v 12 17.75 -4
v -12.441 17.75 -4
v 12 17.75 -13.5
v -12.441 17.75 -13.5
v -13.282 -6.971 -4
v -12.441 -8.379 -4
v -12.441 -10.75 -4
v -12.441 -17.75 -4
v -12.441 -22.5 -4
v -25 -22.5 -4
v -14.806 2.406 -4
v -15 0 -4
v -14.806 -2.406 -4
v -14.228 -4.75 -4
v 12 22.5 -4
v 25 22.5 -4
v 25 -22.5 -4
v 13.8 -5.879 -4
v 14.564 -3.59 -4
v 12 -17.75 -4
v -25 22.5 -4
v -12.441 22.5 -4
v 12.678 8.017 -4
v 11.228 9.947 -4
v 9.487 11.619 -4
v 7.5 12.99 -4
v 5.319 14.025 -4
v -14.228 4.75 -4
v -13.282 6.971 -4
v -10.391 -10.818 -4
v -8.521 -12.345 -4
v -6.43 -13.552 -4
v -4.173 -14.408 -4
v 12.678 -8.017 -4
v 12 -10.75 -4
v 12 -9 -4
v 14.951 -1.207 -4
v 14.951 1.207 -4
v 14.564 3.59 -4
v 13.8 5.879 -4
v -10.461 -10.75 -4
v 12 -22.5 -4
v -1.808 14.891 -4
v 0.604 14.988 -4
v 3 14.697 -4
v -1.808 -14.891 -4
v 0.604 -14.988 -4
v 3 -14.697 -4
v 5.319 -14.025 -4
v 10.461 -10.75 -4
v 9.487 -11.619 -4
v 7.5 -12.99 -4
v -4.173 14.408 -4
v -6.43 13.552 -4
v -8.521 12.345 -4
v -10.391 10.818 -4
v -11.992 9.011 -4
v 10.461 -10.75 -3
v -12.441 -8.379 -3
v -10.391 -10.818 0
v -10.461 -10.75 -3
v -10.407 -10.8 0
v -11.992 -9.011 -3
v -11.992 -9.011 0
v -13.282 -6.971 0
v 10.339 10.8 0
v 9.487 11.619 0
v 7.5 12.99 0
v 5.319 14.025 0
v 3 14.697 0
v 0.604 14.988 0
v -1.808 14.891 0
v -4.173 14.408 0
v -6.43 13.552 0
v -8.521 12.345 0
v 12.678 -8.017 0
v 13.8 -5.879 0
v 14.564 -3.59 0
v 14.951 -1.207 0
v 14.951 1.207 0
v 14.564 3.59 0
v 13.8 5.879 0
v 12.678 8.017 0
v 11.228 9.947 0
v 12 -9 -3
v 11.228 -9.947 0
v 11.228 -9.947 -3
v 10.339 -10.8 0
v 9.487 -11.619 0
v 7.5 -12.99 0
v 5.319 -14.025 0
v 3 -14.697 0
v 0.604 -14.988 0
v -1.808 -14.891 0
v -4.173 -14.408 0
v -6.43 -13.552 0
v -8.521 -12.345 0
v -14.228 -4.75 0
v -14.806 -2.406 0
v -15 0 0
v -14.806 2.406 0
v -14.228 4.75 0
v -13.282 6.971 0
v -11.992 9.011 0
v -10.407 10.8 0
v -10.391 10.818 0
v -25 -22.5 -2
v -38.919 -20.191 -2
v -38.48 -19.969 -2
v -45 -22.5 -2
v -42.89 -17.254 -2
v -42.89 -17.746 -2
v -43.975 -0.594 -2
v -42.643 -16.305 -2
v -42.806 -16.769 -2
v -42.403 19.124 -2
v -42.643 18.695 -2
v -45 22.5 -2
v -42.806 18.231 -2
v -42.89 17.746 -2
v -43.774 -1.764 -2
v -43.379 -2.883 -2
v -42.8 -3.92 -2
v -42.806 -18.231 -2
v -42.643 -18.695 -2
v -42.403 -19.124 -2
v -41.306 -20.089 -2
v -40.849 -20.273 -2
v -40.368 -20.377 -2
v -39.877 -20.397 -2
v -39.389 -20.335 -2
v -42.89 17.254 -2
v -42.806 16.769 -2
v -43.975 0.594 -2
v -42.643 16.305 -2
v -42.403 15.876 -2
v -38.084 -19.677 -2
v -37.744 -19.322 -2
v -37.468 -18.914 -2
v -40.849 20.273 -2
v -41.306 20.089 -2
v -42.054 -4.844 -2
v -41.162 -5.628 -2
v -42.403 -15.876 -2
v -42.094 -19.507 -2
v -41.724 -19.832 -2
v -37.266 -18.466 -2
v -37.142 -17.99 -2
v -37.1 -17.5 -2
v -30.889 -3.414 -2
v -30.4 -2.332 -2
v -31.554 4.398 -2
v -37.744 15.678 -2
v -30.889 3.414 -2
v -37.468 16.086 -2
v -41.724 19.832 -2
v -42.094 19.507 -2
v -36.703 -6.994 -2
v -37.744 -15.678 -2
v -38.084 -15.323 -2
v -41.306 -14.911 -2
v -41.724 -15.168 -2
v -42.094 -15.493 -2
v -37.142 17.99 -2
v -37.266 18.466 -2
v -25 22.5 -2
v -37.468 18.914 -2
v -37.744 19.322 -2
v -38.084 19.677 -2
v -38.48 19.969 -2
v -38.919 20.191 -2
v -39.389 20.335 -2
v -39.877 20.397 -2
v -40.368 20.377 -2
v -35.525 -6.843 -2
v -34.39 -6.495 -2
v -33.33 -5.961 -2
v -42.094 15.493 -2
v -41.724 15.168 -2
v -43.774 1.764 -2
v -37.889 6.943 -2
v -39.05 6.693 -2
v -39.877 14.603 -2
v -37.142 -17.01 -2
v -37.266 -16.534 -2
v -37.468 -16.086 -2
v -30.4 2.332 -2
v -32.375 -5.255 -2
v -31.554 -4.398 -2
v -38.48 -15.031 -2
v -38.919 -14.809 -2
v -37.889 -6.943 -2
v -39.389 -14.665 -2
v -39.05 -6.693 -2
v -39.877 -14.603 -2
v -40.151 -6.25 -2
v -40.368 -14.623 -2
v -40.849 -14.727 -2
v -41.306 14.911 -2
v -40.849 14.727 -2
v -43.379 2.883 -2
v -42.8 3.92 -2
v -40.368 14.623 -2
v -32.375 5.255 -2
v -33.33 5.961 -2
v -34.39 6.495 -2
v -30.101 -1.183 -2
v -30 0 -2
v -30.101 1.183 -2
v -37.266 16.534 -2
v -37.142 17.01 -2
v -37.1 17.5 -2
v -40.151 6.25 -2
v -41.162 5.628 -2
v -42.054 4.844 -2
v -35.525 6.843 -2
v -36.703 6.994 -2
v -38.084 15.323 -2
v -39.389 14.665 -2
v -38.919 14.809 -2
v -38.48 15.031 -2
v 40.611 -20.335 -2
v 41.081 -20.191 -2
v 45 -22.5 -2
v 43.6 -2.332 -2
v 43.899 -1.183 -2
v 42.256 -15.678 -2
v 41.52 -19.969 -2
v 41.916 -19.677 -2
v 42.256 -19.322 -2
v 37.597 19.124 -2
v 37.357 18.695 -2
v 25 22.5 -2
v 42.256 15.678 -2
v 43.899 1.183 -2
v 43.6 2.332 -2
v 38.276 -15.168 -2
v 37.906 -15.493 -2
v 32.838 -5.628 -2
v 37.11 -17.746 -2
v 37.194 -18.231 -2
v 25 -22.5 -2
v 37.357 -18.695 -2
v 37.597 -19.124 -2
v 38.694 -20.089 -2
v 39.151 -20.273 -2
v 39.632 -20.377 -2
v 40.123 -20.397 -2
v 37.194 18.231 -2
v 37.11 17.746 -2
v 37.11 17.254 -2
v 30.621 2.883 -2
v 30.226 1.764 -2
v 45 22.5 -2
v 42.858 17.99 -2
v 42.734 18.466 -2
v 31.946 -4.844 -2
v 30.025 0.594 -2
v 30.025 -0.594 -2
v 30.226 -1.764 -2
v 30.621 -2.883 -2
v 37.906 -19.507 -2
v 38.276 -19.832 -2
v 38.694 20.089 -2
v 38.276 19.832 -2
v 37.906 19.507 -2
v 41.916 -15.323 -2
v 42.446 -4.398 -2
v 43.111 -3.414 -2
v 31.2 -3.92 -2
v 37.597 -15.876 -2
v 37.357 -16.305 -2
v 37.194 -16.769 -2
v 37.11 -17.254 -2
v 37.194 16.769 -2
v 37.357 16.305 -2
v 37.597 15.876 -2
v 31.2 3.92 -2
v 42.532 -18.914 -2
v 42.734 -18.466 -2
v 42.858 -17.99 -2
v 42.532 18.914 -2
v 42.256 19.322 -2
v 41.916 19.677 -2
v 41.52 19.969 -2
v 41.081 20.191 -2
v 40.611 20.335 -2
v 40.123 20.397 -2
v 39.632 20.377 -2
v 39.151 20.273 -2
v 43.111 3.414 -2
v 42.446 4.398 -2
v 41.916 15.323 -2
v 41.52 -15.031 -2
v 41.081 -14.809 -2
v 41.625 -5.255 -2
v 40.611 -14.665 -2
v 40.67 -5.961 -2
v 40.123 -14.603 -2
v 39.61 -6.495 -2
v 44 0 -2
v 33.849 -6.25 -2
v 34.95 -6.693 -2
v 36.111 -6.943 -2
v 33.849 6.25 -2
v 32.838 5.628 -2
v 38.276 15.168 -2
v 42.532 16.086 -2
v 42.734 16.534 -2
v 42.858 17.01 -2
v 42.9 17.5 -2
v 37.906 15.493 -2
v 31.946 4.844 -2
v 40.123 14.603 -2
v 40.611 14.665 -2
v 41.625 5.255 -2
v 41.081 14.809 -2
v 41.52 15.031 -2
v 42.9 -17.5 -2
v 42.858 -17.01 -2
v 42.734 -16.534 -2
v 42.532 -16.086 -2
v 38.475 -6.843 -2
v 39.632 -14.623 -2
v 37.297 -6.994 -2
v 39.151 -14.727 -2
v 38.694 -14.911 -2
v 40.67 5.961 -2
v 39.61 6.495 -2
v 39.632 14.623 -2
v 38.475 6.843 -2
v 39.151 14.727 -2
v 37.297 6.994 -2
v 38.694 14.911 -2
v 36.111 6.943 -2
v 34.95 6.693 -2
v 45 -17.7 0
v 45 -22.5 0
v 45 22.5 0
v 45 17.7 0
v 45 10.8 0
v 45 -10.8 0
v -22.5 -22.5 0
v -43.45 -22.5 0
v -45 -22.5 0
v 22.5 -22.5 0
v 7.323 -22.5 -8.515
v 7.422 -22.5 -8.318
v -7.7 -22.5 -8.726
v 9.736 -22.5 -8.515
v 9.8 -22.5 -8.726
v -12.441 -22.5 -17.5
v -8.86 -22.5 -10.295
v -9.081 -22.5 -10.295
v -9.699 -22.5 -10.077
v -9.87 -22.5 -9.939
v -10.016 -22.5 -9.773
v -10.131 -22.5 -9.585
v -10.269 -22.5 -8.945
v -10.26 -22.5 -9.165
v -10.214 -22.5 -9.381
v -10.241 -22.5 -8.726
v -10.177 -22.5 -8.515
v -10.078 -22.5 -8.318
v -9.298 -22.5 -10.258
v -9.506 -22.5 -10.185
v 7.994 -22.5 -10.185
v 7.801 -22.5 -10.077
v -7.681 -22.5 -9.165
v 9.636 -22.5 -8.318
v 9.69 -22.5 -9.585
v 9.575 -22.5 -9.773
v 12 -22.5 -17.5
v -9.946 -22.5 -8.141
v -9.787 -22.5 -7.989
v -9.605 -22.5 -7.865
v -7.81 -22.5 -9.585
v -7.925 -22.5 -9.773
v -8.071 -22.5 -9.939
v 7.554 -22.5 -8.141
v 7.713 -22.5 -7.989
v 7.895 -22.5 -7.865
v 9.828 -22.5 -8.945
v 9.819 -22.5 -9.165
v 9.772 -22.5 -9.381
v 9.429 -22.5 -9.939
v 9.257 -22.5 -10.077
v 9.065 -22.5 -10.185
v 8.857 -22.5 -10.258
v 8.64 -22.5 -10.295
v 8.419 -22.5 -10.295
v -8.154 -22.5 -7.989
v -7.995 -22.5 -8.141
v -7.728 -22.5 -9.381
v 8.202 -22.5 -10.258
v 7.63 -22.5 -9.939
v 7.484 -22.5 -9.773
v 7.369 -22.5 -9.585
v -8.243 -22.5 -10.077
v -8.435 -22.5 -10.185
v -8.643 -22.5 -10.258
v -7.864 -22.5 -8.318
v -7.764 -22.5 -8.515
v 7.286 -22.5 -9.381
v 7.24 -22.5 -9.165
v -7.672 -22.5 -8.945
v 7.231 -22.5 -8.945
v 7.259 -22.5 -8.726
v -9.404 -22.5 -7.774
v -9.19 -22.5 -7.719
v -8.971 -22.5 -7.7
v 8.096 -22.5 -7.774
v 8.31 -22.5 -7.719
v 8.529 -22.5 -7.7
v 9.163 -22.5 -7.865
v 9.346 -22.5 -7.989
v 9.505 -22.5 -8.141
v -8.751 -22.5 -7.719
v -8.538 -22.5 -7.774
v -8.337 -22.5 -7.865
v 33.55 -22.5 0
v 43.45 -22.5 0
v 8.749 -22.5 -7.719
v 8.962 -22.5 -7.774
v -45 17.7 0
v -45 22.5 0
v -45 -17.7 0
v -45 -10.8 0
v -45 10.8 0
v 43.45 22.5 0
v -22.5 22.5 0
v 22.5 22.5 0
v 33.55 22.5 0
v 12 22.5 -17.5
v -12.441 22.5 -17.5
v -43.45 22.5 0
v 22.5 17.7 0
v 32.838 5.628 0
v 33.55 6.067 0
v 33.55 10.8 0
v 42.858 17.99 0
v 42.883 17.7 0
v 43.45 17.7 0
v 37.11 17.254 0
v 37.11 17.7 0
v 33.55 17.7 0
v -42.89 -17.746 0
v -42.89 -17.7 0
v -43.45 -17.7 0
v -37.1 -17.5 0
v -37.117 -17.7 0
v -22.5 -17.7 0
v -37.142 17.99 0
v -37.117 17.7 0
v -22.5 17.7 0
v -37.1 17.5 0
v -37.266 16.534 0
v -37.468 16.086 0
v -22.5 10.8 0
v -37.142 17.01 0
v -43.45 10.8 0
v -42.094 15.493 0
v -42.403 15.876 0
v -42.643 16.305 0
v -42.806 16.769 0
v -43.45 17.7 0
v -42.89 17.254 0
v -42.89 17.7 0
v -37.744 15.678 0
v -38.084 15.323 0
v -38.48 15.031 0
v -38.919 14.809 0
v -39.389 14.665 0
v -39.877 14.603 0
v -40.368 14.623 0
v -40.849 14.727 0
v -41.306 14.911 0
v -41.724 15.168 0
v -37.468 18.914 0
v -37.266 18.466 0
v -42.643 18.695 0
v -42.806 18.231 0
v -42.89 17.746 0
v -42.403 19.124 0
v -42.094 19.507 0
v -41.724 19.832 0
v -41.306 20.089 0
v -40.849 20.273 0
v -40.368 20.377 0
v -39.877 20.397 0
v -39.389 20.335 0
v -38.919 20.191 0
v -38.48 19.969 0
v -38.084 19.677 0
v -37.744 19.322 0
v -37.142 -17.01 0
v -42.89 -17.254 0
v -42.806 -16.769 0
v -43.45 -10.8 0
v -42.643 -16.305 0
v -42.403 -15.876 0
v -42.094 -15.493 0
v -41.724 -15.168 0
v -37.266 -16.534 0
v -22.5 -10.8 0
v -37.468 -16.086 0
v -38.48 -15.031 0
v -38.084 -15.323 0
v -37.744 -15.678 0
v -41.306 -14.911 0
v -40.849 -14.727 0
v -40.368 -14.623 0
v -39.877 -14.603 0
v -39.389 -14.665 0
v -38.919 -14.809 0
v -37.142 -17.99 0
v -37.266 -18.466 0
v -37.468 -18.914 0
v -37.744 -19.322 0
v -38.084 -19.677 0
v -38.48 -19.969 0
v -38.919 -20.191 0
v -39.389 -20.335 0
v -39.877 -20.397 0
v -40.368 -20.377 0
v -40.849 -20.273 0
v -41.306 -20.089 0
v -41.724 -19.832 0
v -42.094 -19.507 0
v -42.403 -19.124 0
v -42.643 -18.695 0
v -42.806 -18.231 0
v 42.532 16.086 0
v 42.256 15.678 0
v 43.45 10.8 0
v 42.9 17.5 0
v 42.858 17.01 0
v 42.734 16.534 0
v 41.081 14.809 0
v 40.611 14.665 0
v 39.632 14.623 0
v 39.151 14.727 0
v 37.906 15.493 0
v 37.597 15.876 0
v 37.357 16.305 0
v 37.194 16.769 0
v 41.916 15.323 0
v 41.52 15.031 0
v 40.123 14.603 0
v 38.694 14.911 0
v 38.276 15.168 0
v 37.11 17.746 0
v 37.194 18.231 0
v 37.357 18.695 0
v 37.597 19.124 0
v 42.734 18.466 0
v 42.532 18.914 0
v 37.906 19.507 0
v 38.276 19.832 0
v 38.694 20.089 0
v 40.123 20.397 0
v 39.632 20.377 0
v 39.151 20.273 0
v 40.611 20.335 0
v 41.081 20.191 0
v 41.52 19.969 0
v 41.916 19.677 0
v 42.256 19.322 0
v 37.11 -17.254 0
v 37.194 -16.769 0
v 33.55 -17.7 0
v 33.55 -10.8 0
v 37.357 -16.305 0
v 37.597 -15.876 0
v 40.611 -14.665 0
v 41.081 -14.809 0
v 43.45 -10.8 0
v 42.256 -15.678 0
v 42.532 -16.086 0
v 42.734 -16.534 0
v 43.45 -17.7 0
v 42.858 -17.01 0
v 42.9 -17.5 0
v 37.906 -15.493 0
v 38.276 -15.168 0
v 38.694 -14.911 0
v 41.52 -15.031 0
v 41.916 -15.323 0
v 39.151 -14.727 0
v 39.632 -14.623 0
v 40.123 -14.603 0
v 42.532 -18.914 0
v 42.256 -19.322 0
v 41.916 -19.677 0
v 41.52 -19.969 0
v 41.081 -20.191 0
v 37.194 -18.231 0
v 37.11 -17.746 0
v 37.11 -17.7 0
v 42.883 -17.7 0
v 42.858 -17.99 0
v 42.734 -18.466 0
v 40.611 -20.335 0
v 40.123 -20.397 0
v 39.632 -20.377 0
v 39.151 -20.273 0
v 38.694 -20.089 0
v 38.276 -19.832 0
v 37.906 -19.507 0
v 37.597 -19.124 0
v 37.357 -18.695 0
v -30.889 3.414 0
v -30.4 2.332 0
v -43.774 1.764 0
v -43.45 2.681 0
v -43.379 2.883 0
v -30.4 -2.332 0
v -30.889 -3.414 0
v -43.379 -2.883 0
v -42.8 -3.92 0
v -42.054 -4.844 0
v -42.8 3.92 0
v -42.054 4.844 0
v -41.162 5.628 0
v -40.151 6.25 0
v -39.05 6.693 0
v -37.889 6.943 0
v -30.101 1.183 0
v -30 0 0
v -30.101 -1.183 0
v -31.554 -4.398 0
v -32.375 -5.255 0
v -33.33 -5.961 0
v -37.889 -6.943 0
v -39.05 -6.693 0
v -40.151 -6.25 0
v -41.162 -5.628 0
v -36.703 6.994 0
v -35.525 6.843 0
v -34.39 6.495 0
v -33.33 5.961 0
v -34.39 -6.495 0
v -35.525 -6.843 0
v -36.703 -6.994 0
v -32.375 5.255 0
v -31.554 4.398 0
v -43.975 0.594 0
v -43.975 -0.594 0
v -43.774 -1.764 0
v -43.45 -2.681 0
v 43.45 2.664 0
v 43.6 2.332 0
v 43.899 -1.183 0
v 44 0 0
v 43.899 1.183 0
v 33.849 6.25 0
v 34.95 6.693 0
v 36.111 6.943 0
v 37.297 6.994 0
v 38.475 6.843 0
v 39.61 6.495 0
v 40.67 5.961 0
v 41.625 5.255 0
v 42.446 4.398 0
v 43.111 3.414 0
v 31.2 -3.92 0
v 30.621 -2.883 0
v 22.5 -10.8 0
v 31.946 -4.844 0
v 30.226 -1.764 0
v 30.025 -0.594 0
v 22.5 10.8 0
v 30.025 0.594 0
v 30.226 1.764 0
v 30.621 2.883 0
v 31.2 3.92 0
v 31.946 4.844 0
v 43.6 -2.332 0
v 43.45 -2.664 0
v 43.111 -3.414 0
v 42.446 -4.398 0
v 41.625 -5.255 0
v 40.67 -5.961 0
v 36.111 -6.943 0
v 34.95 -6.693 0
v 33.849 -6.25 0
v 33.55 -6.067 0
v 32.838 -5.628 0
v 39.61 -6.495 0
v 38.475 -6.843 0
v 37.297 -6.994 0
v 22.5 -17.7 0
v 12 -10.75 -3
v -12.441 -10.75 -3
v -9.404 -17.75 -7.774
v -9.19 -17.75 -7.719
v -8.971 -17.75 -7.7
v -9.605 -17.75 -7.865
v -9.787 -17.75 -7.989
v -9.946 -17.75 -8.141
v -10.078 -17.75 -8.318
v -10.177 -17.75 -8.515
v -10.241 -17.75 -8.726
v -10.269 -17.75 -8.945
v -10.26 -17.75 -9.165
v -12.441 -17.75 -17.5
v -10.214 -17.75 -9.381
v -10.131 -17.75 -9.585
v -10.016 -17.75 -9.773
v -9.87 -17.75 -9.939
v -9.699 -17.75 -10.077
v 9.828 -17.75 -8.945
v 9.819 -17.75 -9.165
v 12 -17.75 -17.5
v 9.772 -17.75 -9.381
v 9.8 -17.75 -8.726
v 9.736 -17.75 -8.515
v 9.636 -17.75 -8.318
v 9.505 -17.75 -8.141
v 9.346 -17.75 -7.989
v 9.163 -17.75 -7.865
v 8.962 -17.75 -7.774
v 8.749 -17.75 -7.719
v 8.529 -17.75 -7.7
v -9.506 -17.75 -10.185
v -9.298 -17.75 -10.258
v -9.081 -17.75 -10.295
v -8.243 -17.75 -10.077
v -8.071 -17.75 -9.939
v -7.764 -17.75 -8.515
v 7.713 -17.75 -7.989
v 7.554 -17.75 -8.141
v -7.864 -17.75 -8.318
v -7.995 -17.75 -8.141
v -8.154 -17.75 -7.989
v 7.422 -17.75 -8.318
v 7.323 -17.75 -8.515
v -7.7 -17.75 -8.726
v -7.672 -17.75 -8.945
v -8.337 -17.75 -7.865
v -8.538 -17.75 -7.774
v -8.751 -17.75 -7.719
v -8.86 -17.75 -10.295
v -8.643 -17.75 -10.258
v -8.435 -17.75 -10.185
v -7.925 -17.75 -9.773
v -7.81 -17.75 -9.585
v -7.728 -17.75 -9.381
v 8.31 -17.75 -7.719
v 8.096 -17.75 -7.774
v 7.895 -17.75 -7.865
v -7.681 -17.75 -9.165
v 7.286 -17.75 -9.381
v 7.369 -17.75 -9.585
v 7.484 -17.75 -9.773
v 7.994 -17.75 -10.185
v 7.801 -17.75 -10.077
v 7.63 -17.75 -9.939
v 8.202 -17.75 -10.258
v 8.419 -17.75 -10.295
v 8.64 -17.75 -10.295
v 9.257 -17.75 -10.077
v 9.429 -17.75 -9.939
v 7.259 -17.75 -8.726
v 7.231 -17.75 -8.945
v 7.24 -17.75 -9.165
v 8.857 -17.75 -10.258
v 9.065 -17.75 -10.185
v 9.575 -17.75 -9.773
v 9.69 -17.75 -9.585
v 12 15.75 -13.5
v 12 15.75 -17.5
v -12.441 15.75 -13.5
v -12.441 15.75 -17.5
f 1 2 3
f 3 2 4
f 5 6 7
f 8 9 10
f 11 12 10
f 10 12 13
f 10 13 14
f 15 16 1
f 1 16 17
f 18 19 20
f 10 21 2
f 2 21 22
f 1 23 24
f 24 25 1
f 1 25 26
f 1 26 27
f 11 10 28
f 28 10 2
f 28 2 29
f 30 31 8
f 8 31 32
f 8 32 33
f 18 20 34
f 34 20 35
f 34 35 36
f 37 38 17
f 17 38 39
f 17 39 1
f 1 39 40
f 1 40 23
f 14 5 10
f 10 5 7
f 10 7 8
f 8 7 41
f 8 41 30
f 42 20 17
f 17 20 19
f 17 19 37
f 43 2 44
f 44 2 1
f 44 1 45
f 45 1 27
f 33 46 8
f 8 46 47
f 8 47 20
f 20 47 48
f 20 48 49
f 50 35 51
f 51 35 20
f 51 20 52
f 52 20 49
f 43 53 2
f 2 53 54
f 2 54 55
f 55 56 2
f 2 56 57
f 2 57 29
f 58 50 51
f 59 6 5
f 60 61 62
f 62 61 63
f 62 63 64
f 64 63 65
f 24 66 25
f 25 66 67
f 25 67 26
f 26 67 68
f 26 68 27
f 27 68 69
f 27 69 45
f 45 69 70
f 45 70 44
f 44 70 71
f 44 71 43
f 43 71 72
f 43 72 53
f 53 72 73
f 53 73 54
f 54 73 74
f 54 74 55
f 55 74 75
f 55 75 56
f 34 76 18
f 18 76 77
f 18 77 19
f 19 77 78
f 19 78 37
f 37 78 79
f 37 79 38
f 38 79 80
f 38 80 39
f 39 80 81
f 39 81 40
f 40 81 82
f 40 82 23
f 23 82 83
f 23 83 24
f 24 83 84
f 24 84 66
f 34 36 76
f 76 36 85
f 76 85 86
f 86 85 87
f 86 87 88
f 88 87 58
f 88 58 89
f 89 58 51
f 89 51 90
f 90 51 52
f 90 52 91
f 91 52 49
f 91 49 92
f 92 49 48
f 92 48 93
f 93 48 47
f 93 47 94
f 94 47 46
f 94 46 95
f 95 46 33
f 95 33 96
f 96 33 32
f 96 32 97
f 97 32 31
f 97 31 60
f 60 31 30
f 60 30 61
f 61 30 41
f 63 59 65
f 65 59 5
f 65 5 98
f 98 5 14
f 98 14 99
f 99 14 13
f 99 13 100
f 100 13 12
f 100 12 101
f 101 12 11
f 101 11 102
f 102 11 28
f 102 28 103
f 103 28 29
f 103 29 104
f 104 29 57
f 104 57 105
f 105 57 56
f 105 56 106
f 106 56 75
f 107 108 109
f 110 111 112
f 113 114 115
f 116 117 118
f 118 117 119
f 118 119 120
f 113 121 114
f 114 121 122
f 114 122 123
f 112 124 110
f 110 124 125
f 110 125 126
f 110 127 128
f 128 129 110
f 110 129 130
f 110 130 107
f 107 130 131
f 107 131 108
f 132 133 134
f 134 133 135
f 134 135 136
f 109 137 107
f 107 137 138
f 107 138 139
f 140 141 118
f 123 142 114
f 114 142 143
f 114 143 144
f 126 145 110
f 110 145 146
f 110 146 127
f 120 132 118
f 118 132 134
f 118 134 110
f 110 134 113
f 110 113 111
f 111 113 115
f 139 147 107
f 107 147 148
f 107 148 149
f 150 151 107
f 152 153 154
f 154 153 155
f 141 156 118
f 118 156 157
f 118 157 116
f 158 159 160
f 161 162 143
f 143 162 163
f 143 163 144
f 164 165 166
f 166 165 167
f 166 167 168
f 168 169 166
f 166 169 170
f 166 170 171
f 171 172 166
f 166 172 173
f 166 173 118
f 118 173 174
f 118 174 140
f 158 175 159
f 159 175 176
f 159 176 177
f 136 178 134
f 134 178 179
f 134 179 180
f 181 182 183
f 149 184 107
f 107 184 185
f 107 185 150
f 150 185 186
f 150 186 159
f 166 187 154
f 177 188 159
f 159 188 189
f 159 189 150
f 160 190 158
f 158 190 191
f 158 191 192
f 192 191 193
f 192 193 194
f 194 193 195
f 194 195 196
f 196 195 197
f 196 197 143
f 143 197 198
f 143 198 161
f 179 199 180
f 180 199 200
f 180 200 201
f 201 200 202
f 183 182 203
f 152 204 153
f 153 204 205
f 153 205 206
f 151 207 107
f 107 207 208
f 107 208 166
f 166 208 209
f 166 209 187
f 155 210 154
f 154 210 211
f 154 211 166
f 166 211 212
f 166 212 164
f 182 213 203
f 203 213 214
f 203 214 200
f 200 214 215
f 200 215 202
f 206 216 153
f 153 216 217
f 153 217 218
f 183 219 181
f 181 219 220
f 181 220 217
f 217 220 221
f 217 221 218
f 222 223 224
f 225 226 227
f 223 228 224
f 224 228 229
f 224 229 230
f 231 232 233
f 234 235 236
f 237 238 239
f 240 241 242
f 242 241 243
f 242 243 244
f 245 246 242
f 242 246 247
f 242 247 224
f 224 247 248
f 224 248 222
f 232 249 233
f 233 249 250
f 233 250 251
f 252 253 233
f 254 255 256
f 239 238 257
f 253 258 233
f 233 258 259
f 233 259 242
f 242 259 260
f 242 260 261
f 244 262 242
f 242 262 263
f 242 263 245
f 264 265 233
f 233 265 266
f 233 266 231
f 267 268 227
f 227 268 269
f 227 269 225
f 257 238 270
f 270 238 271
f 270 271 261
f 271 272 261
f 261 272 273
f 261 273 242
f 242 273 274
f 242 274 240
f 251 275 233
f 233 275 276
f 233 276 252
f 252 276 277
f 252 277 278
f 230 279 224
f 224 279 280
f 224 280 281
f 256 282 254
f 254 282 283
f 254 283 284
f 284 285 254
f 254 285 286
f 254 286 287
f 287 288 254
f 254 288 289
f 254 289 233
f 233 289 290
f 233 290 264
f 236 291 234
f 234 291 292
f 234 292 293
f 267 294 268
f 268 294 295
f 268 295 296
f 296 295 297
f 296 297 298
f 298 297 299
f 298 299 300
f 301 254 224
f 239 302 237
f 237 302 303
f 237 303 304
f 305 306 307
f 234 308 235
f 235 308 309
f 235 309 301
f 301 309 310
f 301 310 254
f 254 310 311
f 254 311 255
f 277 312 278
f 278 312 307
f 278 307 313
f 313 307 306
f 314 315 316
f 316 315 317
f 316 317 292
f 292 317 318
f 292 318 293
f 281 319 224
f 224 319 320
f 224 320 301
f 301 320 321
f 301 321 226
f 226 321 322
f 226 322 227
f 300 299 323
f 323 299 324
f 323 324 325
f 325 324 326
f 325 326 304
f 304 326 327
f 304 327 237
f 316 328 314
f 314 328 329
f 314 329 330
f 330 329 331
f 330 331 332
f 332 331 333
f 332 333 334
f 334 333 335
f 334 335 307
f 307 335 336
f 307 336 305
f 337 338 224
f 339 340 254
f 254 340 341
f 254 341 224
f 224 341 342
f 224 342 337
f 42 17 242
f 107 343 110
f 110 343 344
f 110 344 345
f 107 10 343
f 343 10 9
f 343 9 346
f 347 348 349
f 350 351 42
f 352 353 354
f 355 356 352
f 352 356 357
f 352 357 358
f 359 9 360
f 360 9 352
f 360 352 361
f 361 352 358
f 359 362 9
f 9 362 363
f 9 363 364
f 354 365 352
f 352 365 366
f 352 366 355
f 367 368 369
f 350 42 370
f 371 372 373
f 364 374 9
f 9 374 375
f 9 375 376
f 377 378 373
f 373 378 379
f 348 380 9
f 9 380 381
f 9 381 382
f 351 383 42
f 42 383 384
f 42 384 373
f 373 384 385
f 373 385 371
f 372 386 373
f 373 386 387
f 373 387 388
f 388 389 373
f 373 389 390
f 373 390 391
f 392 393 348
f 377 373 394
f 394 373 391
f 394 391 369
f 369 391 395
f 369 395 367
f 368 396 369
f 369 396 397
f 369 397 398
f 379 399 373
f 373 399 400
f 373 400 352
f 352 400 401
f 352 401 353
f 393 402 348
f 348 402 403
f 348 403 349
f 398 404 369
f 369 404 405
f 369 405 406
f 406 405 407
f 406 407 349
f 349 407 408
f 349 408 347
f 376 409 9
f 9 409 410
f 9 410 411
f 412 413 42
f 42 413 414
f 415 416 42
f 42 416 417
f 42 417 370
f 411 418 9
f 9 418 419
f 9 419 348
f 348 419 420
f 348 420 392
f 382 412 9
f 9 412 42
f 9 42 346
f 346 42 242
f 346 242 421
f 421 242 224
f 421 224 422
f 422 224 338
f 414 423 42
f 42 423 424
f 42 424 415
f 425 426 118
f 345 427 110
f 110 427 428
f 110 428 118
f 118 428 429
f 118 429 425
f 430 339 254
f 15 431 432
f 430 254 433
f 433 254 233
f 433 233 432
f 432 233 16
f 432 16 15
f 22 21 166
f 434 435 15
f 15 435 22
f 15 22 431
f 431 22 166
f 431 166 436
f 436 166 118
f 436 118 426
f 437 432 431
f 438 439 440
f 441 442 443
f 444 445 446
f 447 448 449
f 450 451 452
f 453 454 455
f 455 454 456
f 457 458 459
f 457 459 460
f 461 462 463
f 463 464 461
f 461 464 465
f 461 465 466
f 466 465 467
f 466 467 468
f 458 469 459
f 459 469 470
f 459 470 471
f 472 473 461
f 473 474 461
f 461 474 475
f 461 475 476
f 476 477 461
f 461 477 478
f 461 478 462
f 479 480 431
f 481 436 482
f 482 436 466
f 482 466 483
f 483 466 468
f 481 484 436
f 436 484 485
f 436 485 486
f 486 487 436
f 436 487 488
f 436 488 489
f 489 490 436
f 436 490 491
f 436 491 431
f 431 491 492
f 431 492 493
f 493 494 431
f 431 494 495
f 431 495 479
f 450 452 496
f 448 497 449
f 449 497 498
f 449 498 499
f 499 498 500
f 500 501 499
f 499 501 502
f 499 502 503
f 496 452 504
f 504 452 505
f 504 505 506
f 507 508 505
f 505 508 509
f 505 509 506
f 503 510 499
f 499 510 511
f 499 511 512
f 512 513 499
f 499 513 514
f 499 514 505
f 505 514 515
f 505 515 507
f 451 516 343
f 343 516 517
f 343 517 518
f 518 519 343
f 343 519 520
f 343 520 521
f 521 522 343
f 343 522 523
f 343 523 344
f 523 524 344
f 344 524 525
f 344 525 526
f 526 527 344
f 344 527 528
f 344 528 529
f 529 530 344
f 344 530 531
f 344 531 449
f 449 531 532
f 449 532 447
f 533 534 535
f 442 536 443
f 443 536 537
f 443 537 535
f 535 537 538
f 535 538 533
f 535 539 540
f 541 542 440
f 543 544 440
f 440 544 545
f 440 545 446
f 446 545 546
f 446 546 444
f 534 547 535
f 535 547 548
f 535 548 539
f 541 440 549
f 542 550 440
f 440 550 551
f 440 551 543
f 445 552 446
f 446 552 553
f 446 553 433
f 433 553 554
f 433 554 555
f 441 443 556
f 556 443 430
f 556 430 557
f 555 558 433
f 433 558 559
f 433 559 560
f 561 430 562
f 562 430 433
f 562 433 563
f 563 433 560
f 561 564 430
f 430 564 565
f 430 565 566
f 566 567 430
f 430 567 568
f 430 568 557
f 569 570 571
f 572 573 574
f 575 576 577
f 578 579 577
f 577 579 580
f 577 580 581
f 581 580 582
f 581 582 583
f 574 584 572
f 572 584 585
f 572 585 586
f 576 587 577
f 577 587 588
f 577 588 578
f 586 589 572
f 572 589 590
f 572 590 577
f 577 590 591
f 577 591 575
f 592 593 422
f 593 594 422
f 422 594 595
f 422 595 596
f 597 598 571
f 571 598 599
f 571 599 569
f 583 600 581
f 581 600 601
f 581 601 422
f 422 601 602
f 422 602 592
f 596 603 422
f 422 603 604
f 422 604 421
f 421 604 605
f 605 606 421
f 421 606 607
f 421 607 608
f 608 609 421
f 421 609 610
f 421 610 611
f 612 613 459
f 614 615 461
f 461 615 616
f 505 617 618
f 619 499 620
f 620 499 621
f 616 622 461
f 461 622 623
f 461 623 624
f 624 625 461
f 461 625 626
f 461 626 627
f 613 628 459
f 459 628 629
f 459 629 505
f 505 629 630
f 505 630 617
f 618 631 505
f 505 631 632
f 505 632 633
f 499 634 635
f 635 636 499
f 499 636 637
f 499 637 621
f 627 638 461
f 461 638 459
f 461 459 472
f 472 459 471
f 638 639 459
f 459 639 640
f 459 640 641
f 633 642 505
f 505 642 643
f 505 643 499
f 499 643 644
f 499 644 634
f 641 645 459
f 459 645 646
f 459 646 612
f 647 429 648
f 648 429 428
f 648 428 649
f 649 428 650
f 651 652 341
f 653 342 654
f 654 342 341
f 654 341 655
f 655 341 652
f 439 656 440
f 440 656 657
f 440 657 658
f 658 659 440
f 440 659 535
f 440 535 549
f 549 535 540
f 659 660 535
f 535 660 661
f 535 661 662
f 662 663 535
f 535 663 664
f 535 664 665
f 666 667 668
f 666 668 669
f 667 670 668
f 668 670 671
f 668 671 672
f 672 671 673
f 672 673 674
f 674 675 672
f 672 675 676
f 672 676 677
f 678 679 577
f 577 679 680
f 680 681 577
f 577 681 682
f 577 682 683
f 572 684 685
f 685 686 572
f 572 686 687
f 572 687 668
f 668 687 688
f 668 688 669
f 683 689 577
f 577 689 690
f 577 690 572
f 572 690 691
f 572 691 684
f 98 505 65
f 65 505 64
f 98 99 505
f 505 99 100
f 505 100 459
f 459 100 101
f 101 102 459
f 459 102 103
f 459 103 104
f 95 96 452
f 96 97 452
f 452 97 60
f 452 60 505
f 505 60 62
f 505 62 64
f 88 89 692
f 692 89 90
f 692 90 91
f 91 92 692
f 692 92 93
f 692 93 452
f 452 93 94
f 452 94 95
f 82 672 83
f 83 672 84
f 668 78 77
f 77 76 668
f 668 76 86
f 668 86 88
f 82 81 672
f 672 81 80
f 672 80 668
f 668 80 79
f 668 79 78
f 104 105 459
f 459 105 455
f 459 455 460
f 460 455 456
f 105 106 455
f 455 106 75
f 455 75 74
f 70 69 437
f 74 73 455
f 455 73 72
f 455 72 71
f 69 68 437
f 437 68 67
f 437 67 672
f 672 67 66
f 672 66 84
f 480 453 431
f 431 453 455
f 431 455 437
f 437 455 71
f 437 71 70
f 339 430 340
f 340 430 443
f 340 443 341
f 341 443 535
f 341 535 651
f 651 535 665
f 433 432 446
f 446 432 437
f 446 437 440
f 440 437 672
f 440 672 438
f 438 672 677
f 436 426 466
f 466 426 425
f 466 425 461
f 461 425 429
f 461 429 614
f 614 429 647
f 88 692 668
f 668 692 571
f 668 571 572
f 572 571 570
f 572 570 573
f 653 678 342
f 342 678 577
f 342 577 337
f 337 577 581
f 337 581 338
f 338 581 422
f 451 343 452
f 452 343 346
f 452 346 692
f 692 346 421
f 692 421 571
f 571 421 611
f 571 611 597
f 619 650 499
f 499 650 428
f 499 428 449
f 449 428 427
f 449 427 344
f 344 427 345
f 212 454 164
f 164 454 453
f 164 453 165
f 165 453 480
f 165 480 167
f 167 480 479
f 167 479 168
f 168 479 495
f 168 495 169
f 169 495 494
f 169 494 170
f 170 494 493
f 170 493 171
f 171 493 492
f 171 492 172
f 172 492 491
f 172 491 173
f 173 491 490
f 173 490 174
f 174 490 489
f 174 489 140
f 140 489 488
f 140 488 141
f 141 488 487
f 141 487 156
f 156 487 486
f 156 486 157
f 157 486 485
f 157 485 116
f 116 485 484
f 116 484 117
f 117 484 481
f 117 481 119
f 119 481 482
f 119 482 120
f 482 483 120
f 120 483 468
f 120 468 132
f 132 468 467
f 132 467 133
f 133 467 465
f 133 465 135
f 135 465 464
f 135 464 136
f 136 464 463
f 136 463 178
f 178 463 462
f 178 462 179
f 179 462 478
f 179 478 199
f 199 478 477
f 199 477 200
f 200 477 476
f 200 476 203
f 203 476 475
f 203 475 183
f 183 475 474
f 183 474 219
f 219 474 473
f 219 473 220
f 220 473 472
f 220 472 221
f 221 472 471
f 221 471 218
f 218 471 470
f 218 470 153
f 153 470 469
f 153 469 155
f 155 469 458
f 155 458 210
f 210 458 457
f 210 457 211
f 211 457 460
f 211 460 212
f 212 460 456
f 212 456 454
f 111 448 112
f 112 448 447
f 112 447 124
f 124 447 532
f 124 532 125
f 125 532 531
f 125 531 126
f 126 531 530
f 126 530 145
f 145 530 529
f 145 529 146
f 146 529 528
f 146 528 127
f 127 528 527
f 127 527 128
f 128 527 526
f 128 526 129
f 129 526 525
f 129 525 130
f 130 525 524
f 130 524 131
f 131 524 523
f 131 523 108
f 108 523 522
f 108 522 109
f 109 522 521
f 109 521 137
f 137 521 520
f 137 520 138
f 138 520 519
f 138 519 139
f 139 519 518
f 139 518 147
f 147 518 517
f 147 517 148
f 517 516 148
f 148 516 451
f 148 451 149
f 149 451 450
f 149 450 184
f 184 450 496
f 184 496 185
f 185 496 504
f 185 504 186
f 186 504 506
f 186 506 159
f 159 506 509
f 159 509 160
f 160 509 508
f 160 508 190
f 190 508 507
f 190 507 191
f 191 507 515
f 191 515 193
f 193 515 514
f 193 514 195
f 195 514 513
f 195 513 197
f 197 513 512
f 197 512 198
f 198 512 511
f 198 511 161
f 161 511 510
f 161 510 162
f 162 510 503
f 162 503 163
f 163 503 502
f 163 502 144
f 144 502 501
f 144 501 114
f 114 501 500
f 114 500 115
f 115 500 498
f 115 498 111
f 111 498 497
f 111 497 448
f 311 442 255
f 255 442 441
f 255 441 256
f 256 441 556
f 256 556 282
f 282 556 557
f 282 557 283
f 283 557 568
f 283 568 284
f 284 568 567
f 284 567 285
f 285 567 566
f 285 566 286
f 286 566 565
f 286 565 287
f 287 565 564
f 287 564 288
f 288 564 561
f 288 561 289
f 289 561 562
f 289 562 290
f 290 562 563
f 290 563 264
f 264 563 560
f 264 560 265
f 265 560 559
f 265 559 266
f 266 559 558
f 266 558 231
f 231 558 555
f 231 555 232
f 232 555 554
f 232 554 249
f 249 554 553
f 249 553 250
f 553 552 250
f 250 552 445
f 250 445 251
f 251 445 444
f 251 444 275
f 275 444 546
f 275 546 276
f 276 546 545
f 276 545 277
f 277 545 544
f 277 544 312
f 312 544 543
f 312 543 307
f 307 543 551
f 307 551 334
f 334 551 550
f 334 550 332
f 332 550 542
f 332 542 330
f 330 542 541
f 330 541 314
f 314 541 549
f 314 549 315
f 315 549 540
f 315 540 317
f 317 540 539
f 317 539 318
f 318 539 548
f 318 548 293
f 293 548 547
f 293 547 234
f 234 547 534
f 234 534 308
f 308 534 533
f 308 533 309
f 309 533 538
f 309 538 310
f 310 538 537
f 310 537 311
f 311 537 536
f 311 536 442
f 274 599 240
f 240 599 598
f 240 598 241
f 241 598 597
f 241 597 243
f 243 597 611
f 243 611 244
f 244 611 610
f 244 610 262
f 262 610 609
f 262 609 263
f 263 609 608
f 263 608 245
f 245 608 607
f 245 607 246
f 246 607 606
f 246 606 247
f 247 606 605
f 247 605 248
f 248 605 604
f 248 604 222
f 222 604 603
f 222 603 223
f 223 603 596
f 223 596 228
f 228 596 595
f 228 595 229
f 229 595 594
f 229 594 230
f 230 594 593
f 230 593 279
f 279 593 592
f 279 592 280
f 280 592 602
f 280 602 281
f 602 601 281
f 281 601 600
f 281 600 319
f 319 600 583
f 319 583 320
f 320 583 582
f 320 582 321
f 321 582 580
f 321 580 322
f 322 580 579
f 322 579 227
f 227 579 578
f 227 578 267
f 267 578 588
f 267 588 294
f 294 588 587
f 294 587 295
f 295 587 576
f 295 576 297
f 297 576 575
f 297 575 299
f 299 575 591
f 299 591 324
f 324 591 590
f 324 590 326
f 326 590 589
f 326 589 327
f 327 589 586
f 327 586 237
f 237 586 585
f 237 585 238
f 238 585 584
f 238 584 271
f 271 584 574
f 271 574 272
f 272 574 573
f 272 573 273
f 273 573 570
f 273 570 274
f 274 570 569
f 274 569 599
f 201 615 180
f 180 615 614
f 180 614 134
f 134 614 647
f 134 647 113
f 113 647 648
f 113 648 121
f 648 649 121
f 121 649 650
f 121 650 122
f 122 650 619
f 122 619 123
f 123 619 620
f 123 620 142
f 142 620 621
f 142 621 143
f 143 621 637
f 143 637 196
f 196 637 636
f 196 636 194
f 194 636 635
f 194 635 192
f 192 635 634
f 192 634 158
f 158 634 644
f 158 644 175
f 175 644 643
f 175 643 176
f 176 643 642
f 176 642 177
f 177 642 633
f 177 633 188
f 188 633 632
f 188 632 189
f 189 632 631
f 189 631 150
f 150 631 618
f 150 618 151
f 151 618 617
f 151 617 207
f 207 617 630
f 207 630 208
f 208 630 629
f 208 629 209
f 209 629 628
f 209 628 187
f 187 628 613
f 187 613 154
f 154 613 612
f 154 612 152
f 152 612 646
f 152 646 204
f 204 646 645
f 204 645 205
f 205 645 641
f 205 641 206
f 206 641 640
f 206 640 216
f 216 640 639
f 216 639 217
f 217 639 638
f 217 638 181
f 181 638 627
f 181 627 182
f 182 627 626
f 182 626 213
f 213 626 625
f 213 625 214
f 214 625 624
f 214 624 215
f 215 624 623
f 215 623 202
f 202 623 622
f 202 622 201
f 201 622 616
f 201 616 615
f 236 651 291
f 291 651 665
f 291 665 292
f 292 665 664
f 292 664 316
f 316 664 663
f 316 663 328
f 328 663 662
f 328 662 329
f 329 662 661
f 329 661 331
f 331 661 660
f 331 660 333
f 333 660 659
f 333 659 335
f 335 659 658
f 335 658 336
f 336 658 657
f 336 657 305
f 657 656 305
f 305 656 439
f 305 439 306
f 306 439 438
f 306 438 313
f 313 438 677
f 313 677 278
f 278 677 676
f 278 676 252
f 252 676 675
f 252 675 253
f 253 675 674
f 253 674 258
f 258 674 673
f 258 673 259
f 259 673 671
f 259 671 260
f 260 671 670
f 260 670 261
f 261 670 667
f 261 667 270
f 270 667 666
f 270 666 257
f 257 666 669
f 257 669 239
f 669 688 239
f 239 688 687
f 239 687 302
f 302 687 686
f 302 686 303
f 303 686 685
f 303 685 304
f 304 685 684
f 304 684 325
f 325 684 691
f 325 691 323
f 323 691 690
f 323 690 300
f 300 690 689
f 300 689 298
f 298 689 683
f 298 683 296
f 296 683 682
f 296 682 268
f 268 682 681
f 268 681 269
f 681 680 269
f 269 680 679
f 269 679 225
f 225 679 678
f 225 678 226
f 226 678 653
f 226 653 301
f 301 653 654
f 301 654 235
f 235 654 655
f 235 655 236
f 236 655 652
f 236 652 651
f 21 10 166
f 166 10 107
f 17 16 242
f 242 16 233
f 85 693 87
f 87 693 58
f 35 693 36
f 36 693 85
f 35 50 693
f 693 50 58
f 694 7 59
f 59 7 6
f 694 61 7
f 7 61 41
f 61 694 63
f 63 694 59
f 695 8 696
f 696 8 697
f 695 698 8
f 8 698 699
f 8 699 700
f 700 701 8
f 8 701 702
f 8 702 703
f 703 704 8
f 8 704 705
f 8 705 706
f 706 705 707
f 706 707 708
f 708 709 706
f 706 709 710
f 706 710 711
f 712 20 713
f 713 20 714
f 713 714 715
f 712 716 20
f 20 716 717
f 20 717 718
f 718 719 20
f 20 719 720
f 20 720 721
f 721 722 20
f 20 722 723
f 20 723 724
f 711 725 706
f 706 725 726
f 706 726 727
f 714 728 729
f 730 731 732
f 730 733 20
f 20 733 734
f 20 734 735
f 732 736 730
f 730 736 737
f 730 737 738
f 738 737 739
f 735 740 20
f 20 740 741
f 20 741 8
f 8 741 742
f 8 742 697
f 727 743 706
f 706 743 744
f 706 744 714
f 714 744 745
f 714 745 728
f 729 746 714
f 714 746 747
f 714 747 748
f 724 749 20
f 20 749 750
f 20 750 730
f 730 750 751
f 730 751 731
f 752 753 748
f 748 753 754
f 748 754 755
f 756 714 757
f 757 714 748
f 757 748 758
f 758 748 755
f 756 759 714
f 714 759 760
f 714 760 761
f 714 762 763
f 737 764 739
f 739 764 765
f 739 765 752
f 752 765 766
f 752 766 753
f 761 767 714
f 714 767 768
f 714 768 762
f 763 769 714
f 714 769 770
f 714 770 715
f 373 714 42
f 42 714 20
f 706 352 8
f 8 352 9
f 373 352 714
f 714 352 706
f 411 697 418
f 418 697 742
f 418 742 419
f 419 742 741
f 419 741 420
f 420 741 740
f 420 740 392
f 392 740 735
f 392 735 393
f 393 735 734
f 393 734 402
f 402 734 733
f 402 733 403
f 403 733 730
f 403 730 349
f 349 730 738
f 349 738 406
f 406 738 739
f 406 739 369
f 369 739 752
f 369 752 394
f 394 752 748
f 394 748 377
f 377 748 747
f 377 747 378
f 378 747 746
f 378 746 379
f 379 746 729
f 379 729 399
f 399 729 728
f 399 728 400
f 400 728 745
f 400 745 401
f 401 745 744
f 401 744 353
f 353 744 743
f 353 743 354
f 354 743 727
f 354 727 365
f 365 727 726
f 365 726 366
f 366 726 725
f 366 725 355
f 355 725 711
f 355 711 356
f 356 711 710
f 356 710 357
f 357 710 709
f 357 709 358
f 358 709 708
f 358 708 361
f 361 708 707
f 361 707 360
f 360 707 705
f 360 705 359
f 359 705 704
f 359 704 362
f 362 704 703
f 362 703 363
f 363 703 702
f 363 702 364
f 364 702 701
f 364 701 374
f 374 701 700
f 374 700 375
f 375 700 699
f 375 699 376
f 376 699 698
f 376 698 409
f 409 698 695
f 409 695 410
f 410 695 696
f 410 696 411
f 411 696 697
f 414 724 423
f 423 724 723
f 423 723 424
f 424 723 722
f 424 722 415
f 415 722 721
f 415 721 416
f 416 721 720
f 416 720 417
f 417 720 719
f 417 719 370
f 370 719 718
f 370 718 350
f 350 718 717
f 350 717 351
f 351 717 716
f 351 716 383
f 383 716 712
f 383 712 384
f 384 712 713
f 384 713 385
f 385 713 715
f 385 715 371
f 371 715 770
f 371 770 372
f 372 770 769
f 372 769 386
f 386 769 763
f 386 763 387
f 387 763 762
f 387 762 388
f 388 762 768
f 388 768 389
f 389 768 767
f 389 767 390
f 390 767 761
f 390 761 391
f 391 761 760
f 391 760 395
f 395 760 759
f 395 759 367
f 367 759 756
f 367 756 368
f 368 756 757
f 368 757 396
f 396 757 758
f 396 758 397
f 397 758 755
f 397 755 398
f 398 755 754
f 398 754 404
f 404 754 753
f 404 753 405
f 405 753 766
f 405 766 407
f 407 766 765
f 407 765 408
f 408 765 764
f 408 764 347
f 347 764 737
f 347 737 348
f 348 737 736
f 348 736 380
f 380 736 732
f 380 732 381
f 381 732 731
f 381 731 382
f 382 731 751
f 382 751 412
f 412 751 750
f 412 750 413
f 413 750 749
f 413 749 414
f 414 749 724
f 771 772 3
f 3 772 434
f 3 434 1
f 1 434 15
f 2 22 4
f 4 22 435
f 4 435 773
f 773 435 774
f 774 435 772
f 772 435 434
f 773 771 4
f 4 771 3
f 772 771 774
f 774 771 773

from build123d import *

# Parameters (mm, degrees)
SKETCH_1_W          = 90
SKETCH_1_H          = 45
SKETCH_1_R          = 2.9
SKETCH_1_R_2        = 7
EXTRUDE_2_DEPTH     = 2
EXTRUDE_3_DEPTH     = 2
SKETCH_3_R          = 15
CUT_EXTRUDE_1_DEPTH = 51.470288289
SKETCH_4_W          = 24.441241248
SKETCH_4_H          = 13
CUT_EXTRUDE_2_DEPTH = 1
EXTRUDE_4_DEPTH     = 13.5
SKETCH_5_R          = 1.3
CUT_EXTRUDE_3_DEPTH = 63.859466272
SKETCH_4_4_W        = 24.441241248
SKETCH_4_4_H        = 4.75
EXTRUDE_5_DEPTH     = 13.5
SKETCH_6_W          = 24.441241248
SKETCH_6_H          = 4
EXTRUDE_6_DEPTH     = 2


with BuildPart() as part:
    # 草图1 → 凸台-拉伸2 (new body)
    with BuildSketch(Plane.XY):
        Rectangle(SKETCH_1_W, SKETCH_1_H)
        with Locations((-40, 17.5)):
            Circle(SKETCH_1_R, mode=Mode.SUBTRACT)
        with Locations((-40, -17.5)):
            Circle(SKETCH_1_R, mode=Mode.SUBTRACT)
        with Locations((40, 17.5)):
            Circle(SKETCH_1_R, mode=Mode.SUBTRACT)
        with Locations((40, -17.5)):
            Circle(SKETCH_1_R, mode=Mode.SUBTRACT)
        with Locations((-37, 0)):
            Circle(SKETCH_1_R_2, mode=Mode.SUBTRACT)
        with Locations((37, 0)):
            Circle(SKETCH_1_R_2, mode=Mode.SUBTRACT)
    extrude(amount=-EXTRUDE_2_DEPTH)

    # 草图2 → 凸台-拉伸3 (add)
    with BuildSketch(Plane(origin=(0, 0, -2), x_dir=(-1, 0, 0), z_dir=(0, 0, -1))):
        Polygon((0, -22.5), (-25, -22.5), (-25, 22.5), (25, 22.5), (25, -22.5), align=None)
    extrude(amount=EXTRUDE_3_DEPTH)

    # 草图3 → 切除-拉伸1 (cut, through all)
    with BuildSketch(Plane(origin=(0, 0, -4), x_dir=(-1, 0, 0), z_dir=(0, 0, -1))):
        Circle(SKETCH_3_R)
    extrude(amount=-CUT_EXTRUDE_1_DEPTH, mode=Mode.SUBTRACT)

    # 草图4 → 切除-拉伸2 (cut)
    with BuildSketch(Plane(origin=(0, 0, -4), x_dir=(-1, 0, 0), z_dir=(0, 0, -1))):
        with Locations((0.220620624, -4.25)):
            Rectangle(SKETCH_4_W, SKETCH_4_H)
    extrude(amount=-CUT_EXTRUDE_2_DEPTH, mode=Mode.SUBTRACT)

    # 草图4<3> → 凸台-拉伸4 (add)
    with BuildSketch(Plane(origin=(0, 0, -4), x_dir=(-1, 0, 0), z_dir=(0, 0, -1))):
        Polygon((-12, -22.5), (0, -22.5), (12.441241248, -22.5), (12.441241248, -17.75), (-12, -17.75), align=None)
    extrude(amount=EXTRUDE_4_DEPTH)

    # 草图5 → 切除-拉伸3 (cut, through all)
    with BuildSketch(Plane(origin=(0, -17.75, 0), x_dir=(1, 0, 0), z_dir=(0, 1, 0))):
        with Locations((-8.970620624, 9)):
            Circle(SKETCH_5_R)
        with Locations((8.529379376, 9)):
            Circle(SKETCH_5_R)
    extrude(amount=-CUT_EXTRUDE_3_DEPTH, mode=Mode.SUBTRACT)

    # 草图4<4> → 凸台-拉伸5 (add)
    with BuildSketch(Plane(origin=(0, 0, -4), x_dir=(-1, 0, 0), z_dir=(0, 0, -1))):
        with Locations((0.220620624, 20.125)):
            Rectangle(SKETCH_4_4_W, SKETCH_4_4_H)
    extrude(amount=EXTRUDE_5_DEPTH)

    # 草图6 → 凸台-拉伸6 (add)
    with BuildSketch(Plane.XZ.offset(-17.75)):
        with Locations((-0.220620624, -15.5)):
            Rectangle(SKETCH_6_W, SKETCH_6_H)
    extrude(amount=EXTRUDE_6_DEPTH)


solid = part.part
